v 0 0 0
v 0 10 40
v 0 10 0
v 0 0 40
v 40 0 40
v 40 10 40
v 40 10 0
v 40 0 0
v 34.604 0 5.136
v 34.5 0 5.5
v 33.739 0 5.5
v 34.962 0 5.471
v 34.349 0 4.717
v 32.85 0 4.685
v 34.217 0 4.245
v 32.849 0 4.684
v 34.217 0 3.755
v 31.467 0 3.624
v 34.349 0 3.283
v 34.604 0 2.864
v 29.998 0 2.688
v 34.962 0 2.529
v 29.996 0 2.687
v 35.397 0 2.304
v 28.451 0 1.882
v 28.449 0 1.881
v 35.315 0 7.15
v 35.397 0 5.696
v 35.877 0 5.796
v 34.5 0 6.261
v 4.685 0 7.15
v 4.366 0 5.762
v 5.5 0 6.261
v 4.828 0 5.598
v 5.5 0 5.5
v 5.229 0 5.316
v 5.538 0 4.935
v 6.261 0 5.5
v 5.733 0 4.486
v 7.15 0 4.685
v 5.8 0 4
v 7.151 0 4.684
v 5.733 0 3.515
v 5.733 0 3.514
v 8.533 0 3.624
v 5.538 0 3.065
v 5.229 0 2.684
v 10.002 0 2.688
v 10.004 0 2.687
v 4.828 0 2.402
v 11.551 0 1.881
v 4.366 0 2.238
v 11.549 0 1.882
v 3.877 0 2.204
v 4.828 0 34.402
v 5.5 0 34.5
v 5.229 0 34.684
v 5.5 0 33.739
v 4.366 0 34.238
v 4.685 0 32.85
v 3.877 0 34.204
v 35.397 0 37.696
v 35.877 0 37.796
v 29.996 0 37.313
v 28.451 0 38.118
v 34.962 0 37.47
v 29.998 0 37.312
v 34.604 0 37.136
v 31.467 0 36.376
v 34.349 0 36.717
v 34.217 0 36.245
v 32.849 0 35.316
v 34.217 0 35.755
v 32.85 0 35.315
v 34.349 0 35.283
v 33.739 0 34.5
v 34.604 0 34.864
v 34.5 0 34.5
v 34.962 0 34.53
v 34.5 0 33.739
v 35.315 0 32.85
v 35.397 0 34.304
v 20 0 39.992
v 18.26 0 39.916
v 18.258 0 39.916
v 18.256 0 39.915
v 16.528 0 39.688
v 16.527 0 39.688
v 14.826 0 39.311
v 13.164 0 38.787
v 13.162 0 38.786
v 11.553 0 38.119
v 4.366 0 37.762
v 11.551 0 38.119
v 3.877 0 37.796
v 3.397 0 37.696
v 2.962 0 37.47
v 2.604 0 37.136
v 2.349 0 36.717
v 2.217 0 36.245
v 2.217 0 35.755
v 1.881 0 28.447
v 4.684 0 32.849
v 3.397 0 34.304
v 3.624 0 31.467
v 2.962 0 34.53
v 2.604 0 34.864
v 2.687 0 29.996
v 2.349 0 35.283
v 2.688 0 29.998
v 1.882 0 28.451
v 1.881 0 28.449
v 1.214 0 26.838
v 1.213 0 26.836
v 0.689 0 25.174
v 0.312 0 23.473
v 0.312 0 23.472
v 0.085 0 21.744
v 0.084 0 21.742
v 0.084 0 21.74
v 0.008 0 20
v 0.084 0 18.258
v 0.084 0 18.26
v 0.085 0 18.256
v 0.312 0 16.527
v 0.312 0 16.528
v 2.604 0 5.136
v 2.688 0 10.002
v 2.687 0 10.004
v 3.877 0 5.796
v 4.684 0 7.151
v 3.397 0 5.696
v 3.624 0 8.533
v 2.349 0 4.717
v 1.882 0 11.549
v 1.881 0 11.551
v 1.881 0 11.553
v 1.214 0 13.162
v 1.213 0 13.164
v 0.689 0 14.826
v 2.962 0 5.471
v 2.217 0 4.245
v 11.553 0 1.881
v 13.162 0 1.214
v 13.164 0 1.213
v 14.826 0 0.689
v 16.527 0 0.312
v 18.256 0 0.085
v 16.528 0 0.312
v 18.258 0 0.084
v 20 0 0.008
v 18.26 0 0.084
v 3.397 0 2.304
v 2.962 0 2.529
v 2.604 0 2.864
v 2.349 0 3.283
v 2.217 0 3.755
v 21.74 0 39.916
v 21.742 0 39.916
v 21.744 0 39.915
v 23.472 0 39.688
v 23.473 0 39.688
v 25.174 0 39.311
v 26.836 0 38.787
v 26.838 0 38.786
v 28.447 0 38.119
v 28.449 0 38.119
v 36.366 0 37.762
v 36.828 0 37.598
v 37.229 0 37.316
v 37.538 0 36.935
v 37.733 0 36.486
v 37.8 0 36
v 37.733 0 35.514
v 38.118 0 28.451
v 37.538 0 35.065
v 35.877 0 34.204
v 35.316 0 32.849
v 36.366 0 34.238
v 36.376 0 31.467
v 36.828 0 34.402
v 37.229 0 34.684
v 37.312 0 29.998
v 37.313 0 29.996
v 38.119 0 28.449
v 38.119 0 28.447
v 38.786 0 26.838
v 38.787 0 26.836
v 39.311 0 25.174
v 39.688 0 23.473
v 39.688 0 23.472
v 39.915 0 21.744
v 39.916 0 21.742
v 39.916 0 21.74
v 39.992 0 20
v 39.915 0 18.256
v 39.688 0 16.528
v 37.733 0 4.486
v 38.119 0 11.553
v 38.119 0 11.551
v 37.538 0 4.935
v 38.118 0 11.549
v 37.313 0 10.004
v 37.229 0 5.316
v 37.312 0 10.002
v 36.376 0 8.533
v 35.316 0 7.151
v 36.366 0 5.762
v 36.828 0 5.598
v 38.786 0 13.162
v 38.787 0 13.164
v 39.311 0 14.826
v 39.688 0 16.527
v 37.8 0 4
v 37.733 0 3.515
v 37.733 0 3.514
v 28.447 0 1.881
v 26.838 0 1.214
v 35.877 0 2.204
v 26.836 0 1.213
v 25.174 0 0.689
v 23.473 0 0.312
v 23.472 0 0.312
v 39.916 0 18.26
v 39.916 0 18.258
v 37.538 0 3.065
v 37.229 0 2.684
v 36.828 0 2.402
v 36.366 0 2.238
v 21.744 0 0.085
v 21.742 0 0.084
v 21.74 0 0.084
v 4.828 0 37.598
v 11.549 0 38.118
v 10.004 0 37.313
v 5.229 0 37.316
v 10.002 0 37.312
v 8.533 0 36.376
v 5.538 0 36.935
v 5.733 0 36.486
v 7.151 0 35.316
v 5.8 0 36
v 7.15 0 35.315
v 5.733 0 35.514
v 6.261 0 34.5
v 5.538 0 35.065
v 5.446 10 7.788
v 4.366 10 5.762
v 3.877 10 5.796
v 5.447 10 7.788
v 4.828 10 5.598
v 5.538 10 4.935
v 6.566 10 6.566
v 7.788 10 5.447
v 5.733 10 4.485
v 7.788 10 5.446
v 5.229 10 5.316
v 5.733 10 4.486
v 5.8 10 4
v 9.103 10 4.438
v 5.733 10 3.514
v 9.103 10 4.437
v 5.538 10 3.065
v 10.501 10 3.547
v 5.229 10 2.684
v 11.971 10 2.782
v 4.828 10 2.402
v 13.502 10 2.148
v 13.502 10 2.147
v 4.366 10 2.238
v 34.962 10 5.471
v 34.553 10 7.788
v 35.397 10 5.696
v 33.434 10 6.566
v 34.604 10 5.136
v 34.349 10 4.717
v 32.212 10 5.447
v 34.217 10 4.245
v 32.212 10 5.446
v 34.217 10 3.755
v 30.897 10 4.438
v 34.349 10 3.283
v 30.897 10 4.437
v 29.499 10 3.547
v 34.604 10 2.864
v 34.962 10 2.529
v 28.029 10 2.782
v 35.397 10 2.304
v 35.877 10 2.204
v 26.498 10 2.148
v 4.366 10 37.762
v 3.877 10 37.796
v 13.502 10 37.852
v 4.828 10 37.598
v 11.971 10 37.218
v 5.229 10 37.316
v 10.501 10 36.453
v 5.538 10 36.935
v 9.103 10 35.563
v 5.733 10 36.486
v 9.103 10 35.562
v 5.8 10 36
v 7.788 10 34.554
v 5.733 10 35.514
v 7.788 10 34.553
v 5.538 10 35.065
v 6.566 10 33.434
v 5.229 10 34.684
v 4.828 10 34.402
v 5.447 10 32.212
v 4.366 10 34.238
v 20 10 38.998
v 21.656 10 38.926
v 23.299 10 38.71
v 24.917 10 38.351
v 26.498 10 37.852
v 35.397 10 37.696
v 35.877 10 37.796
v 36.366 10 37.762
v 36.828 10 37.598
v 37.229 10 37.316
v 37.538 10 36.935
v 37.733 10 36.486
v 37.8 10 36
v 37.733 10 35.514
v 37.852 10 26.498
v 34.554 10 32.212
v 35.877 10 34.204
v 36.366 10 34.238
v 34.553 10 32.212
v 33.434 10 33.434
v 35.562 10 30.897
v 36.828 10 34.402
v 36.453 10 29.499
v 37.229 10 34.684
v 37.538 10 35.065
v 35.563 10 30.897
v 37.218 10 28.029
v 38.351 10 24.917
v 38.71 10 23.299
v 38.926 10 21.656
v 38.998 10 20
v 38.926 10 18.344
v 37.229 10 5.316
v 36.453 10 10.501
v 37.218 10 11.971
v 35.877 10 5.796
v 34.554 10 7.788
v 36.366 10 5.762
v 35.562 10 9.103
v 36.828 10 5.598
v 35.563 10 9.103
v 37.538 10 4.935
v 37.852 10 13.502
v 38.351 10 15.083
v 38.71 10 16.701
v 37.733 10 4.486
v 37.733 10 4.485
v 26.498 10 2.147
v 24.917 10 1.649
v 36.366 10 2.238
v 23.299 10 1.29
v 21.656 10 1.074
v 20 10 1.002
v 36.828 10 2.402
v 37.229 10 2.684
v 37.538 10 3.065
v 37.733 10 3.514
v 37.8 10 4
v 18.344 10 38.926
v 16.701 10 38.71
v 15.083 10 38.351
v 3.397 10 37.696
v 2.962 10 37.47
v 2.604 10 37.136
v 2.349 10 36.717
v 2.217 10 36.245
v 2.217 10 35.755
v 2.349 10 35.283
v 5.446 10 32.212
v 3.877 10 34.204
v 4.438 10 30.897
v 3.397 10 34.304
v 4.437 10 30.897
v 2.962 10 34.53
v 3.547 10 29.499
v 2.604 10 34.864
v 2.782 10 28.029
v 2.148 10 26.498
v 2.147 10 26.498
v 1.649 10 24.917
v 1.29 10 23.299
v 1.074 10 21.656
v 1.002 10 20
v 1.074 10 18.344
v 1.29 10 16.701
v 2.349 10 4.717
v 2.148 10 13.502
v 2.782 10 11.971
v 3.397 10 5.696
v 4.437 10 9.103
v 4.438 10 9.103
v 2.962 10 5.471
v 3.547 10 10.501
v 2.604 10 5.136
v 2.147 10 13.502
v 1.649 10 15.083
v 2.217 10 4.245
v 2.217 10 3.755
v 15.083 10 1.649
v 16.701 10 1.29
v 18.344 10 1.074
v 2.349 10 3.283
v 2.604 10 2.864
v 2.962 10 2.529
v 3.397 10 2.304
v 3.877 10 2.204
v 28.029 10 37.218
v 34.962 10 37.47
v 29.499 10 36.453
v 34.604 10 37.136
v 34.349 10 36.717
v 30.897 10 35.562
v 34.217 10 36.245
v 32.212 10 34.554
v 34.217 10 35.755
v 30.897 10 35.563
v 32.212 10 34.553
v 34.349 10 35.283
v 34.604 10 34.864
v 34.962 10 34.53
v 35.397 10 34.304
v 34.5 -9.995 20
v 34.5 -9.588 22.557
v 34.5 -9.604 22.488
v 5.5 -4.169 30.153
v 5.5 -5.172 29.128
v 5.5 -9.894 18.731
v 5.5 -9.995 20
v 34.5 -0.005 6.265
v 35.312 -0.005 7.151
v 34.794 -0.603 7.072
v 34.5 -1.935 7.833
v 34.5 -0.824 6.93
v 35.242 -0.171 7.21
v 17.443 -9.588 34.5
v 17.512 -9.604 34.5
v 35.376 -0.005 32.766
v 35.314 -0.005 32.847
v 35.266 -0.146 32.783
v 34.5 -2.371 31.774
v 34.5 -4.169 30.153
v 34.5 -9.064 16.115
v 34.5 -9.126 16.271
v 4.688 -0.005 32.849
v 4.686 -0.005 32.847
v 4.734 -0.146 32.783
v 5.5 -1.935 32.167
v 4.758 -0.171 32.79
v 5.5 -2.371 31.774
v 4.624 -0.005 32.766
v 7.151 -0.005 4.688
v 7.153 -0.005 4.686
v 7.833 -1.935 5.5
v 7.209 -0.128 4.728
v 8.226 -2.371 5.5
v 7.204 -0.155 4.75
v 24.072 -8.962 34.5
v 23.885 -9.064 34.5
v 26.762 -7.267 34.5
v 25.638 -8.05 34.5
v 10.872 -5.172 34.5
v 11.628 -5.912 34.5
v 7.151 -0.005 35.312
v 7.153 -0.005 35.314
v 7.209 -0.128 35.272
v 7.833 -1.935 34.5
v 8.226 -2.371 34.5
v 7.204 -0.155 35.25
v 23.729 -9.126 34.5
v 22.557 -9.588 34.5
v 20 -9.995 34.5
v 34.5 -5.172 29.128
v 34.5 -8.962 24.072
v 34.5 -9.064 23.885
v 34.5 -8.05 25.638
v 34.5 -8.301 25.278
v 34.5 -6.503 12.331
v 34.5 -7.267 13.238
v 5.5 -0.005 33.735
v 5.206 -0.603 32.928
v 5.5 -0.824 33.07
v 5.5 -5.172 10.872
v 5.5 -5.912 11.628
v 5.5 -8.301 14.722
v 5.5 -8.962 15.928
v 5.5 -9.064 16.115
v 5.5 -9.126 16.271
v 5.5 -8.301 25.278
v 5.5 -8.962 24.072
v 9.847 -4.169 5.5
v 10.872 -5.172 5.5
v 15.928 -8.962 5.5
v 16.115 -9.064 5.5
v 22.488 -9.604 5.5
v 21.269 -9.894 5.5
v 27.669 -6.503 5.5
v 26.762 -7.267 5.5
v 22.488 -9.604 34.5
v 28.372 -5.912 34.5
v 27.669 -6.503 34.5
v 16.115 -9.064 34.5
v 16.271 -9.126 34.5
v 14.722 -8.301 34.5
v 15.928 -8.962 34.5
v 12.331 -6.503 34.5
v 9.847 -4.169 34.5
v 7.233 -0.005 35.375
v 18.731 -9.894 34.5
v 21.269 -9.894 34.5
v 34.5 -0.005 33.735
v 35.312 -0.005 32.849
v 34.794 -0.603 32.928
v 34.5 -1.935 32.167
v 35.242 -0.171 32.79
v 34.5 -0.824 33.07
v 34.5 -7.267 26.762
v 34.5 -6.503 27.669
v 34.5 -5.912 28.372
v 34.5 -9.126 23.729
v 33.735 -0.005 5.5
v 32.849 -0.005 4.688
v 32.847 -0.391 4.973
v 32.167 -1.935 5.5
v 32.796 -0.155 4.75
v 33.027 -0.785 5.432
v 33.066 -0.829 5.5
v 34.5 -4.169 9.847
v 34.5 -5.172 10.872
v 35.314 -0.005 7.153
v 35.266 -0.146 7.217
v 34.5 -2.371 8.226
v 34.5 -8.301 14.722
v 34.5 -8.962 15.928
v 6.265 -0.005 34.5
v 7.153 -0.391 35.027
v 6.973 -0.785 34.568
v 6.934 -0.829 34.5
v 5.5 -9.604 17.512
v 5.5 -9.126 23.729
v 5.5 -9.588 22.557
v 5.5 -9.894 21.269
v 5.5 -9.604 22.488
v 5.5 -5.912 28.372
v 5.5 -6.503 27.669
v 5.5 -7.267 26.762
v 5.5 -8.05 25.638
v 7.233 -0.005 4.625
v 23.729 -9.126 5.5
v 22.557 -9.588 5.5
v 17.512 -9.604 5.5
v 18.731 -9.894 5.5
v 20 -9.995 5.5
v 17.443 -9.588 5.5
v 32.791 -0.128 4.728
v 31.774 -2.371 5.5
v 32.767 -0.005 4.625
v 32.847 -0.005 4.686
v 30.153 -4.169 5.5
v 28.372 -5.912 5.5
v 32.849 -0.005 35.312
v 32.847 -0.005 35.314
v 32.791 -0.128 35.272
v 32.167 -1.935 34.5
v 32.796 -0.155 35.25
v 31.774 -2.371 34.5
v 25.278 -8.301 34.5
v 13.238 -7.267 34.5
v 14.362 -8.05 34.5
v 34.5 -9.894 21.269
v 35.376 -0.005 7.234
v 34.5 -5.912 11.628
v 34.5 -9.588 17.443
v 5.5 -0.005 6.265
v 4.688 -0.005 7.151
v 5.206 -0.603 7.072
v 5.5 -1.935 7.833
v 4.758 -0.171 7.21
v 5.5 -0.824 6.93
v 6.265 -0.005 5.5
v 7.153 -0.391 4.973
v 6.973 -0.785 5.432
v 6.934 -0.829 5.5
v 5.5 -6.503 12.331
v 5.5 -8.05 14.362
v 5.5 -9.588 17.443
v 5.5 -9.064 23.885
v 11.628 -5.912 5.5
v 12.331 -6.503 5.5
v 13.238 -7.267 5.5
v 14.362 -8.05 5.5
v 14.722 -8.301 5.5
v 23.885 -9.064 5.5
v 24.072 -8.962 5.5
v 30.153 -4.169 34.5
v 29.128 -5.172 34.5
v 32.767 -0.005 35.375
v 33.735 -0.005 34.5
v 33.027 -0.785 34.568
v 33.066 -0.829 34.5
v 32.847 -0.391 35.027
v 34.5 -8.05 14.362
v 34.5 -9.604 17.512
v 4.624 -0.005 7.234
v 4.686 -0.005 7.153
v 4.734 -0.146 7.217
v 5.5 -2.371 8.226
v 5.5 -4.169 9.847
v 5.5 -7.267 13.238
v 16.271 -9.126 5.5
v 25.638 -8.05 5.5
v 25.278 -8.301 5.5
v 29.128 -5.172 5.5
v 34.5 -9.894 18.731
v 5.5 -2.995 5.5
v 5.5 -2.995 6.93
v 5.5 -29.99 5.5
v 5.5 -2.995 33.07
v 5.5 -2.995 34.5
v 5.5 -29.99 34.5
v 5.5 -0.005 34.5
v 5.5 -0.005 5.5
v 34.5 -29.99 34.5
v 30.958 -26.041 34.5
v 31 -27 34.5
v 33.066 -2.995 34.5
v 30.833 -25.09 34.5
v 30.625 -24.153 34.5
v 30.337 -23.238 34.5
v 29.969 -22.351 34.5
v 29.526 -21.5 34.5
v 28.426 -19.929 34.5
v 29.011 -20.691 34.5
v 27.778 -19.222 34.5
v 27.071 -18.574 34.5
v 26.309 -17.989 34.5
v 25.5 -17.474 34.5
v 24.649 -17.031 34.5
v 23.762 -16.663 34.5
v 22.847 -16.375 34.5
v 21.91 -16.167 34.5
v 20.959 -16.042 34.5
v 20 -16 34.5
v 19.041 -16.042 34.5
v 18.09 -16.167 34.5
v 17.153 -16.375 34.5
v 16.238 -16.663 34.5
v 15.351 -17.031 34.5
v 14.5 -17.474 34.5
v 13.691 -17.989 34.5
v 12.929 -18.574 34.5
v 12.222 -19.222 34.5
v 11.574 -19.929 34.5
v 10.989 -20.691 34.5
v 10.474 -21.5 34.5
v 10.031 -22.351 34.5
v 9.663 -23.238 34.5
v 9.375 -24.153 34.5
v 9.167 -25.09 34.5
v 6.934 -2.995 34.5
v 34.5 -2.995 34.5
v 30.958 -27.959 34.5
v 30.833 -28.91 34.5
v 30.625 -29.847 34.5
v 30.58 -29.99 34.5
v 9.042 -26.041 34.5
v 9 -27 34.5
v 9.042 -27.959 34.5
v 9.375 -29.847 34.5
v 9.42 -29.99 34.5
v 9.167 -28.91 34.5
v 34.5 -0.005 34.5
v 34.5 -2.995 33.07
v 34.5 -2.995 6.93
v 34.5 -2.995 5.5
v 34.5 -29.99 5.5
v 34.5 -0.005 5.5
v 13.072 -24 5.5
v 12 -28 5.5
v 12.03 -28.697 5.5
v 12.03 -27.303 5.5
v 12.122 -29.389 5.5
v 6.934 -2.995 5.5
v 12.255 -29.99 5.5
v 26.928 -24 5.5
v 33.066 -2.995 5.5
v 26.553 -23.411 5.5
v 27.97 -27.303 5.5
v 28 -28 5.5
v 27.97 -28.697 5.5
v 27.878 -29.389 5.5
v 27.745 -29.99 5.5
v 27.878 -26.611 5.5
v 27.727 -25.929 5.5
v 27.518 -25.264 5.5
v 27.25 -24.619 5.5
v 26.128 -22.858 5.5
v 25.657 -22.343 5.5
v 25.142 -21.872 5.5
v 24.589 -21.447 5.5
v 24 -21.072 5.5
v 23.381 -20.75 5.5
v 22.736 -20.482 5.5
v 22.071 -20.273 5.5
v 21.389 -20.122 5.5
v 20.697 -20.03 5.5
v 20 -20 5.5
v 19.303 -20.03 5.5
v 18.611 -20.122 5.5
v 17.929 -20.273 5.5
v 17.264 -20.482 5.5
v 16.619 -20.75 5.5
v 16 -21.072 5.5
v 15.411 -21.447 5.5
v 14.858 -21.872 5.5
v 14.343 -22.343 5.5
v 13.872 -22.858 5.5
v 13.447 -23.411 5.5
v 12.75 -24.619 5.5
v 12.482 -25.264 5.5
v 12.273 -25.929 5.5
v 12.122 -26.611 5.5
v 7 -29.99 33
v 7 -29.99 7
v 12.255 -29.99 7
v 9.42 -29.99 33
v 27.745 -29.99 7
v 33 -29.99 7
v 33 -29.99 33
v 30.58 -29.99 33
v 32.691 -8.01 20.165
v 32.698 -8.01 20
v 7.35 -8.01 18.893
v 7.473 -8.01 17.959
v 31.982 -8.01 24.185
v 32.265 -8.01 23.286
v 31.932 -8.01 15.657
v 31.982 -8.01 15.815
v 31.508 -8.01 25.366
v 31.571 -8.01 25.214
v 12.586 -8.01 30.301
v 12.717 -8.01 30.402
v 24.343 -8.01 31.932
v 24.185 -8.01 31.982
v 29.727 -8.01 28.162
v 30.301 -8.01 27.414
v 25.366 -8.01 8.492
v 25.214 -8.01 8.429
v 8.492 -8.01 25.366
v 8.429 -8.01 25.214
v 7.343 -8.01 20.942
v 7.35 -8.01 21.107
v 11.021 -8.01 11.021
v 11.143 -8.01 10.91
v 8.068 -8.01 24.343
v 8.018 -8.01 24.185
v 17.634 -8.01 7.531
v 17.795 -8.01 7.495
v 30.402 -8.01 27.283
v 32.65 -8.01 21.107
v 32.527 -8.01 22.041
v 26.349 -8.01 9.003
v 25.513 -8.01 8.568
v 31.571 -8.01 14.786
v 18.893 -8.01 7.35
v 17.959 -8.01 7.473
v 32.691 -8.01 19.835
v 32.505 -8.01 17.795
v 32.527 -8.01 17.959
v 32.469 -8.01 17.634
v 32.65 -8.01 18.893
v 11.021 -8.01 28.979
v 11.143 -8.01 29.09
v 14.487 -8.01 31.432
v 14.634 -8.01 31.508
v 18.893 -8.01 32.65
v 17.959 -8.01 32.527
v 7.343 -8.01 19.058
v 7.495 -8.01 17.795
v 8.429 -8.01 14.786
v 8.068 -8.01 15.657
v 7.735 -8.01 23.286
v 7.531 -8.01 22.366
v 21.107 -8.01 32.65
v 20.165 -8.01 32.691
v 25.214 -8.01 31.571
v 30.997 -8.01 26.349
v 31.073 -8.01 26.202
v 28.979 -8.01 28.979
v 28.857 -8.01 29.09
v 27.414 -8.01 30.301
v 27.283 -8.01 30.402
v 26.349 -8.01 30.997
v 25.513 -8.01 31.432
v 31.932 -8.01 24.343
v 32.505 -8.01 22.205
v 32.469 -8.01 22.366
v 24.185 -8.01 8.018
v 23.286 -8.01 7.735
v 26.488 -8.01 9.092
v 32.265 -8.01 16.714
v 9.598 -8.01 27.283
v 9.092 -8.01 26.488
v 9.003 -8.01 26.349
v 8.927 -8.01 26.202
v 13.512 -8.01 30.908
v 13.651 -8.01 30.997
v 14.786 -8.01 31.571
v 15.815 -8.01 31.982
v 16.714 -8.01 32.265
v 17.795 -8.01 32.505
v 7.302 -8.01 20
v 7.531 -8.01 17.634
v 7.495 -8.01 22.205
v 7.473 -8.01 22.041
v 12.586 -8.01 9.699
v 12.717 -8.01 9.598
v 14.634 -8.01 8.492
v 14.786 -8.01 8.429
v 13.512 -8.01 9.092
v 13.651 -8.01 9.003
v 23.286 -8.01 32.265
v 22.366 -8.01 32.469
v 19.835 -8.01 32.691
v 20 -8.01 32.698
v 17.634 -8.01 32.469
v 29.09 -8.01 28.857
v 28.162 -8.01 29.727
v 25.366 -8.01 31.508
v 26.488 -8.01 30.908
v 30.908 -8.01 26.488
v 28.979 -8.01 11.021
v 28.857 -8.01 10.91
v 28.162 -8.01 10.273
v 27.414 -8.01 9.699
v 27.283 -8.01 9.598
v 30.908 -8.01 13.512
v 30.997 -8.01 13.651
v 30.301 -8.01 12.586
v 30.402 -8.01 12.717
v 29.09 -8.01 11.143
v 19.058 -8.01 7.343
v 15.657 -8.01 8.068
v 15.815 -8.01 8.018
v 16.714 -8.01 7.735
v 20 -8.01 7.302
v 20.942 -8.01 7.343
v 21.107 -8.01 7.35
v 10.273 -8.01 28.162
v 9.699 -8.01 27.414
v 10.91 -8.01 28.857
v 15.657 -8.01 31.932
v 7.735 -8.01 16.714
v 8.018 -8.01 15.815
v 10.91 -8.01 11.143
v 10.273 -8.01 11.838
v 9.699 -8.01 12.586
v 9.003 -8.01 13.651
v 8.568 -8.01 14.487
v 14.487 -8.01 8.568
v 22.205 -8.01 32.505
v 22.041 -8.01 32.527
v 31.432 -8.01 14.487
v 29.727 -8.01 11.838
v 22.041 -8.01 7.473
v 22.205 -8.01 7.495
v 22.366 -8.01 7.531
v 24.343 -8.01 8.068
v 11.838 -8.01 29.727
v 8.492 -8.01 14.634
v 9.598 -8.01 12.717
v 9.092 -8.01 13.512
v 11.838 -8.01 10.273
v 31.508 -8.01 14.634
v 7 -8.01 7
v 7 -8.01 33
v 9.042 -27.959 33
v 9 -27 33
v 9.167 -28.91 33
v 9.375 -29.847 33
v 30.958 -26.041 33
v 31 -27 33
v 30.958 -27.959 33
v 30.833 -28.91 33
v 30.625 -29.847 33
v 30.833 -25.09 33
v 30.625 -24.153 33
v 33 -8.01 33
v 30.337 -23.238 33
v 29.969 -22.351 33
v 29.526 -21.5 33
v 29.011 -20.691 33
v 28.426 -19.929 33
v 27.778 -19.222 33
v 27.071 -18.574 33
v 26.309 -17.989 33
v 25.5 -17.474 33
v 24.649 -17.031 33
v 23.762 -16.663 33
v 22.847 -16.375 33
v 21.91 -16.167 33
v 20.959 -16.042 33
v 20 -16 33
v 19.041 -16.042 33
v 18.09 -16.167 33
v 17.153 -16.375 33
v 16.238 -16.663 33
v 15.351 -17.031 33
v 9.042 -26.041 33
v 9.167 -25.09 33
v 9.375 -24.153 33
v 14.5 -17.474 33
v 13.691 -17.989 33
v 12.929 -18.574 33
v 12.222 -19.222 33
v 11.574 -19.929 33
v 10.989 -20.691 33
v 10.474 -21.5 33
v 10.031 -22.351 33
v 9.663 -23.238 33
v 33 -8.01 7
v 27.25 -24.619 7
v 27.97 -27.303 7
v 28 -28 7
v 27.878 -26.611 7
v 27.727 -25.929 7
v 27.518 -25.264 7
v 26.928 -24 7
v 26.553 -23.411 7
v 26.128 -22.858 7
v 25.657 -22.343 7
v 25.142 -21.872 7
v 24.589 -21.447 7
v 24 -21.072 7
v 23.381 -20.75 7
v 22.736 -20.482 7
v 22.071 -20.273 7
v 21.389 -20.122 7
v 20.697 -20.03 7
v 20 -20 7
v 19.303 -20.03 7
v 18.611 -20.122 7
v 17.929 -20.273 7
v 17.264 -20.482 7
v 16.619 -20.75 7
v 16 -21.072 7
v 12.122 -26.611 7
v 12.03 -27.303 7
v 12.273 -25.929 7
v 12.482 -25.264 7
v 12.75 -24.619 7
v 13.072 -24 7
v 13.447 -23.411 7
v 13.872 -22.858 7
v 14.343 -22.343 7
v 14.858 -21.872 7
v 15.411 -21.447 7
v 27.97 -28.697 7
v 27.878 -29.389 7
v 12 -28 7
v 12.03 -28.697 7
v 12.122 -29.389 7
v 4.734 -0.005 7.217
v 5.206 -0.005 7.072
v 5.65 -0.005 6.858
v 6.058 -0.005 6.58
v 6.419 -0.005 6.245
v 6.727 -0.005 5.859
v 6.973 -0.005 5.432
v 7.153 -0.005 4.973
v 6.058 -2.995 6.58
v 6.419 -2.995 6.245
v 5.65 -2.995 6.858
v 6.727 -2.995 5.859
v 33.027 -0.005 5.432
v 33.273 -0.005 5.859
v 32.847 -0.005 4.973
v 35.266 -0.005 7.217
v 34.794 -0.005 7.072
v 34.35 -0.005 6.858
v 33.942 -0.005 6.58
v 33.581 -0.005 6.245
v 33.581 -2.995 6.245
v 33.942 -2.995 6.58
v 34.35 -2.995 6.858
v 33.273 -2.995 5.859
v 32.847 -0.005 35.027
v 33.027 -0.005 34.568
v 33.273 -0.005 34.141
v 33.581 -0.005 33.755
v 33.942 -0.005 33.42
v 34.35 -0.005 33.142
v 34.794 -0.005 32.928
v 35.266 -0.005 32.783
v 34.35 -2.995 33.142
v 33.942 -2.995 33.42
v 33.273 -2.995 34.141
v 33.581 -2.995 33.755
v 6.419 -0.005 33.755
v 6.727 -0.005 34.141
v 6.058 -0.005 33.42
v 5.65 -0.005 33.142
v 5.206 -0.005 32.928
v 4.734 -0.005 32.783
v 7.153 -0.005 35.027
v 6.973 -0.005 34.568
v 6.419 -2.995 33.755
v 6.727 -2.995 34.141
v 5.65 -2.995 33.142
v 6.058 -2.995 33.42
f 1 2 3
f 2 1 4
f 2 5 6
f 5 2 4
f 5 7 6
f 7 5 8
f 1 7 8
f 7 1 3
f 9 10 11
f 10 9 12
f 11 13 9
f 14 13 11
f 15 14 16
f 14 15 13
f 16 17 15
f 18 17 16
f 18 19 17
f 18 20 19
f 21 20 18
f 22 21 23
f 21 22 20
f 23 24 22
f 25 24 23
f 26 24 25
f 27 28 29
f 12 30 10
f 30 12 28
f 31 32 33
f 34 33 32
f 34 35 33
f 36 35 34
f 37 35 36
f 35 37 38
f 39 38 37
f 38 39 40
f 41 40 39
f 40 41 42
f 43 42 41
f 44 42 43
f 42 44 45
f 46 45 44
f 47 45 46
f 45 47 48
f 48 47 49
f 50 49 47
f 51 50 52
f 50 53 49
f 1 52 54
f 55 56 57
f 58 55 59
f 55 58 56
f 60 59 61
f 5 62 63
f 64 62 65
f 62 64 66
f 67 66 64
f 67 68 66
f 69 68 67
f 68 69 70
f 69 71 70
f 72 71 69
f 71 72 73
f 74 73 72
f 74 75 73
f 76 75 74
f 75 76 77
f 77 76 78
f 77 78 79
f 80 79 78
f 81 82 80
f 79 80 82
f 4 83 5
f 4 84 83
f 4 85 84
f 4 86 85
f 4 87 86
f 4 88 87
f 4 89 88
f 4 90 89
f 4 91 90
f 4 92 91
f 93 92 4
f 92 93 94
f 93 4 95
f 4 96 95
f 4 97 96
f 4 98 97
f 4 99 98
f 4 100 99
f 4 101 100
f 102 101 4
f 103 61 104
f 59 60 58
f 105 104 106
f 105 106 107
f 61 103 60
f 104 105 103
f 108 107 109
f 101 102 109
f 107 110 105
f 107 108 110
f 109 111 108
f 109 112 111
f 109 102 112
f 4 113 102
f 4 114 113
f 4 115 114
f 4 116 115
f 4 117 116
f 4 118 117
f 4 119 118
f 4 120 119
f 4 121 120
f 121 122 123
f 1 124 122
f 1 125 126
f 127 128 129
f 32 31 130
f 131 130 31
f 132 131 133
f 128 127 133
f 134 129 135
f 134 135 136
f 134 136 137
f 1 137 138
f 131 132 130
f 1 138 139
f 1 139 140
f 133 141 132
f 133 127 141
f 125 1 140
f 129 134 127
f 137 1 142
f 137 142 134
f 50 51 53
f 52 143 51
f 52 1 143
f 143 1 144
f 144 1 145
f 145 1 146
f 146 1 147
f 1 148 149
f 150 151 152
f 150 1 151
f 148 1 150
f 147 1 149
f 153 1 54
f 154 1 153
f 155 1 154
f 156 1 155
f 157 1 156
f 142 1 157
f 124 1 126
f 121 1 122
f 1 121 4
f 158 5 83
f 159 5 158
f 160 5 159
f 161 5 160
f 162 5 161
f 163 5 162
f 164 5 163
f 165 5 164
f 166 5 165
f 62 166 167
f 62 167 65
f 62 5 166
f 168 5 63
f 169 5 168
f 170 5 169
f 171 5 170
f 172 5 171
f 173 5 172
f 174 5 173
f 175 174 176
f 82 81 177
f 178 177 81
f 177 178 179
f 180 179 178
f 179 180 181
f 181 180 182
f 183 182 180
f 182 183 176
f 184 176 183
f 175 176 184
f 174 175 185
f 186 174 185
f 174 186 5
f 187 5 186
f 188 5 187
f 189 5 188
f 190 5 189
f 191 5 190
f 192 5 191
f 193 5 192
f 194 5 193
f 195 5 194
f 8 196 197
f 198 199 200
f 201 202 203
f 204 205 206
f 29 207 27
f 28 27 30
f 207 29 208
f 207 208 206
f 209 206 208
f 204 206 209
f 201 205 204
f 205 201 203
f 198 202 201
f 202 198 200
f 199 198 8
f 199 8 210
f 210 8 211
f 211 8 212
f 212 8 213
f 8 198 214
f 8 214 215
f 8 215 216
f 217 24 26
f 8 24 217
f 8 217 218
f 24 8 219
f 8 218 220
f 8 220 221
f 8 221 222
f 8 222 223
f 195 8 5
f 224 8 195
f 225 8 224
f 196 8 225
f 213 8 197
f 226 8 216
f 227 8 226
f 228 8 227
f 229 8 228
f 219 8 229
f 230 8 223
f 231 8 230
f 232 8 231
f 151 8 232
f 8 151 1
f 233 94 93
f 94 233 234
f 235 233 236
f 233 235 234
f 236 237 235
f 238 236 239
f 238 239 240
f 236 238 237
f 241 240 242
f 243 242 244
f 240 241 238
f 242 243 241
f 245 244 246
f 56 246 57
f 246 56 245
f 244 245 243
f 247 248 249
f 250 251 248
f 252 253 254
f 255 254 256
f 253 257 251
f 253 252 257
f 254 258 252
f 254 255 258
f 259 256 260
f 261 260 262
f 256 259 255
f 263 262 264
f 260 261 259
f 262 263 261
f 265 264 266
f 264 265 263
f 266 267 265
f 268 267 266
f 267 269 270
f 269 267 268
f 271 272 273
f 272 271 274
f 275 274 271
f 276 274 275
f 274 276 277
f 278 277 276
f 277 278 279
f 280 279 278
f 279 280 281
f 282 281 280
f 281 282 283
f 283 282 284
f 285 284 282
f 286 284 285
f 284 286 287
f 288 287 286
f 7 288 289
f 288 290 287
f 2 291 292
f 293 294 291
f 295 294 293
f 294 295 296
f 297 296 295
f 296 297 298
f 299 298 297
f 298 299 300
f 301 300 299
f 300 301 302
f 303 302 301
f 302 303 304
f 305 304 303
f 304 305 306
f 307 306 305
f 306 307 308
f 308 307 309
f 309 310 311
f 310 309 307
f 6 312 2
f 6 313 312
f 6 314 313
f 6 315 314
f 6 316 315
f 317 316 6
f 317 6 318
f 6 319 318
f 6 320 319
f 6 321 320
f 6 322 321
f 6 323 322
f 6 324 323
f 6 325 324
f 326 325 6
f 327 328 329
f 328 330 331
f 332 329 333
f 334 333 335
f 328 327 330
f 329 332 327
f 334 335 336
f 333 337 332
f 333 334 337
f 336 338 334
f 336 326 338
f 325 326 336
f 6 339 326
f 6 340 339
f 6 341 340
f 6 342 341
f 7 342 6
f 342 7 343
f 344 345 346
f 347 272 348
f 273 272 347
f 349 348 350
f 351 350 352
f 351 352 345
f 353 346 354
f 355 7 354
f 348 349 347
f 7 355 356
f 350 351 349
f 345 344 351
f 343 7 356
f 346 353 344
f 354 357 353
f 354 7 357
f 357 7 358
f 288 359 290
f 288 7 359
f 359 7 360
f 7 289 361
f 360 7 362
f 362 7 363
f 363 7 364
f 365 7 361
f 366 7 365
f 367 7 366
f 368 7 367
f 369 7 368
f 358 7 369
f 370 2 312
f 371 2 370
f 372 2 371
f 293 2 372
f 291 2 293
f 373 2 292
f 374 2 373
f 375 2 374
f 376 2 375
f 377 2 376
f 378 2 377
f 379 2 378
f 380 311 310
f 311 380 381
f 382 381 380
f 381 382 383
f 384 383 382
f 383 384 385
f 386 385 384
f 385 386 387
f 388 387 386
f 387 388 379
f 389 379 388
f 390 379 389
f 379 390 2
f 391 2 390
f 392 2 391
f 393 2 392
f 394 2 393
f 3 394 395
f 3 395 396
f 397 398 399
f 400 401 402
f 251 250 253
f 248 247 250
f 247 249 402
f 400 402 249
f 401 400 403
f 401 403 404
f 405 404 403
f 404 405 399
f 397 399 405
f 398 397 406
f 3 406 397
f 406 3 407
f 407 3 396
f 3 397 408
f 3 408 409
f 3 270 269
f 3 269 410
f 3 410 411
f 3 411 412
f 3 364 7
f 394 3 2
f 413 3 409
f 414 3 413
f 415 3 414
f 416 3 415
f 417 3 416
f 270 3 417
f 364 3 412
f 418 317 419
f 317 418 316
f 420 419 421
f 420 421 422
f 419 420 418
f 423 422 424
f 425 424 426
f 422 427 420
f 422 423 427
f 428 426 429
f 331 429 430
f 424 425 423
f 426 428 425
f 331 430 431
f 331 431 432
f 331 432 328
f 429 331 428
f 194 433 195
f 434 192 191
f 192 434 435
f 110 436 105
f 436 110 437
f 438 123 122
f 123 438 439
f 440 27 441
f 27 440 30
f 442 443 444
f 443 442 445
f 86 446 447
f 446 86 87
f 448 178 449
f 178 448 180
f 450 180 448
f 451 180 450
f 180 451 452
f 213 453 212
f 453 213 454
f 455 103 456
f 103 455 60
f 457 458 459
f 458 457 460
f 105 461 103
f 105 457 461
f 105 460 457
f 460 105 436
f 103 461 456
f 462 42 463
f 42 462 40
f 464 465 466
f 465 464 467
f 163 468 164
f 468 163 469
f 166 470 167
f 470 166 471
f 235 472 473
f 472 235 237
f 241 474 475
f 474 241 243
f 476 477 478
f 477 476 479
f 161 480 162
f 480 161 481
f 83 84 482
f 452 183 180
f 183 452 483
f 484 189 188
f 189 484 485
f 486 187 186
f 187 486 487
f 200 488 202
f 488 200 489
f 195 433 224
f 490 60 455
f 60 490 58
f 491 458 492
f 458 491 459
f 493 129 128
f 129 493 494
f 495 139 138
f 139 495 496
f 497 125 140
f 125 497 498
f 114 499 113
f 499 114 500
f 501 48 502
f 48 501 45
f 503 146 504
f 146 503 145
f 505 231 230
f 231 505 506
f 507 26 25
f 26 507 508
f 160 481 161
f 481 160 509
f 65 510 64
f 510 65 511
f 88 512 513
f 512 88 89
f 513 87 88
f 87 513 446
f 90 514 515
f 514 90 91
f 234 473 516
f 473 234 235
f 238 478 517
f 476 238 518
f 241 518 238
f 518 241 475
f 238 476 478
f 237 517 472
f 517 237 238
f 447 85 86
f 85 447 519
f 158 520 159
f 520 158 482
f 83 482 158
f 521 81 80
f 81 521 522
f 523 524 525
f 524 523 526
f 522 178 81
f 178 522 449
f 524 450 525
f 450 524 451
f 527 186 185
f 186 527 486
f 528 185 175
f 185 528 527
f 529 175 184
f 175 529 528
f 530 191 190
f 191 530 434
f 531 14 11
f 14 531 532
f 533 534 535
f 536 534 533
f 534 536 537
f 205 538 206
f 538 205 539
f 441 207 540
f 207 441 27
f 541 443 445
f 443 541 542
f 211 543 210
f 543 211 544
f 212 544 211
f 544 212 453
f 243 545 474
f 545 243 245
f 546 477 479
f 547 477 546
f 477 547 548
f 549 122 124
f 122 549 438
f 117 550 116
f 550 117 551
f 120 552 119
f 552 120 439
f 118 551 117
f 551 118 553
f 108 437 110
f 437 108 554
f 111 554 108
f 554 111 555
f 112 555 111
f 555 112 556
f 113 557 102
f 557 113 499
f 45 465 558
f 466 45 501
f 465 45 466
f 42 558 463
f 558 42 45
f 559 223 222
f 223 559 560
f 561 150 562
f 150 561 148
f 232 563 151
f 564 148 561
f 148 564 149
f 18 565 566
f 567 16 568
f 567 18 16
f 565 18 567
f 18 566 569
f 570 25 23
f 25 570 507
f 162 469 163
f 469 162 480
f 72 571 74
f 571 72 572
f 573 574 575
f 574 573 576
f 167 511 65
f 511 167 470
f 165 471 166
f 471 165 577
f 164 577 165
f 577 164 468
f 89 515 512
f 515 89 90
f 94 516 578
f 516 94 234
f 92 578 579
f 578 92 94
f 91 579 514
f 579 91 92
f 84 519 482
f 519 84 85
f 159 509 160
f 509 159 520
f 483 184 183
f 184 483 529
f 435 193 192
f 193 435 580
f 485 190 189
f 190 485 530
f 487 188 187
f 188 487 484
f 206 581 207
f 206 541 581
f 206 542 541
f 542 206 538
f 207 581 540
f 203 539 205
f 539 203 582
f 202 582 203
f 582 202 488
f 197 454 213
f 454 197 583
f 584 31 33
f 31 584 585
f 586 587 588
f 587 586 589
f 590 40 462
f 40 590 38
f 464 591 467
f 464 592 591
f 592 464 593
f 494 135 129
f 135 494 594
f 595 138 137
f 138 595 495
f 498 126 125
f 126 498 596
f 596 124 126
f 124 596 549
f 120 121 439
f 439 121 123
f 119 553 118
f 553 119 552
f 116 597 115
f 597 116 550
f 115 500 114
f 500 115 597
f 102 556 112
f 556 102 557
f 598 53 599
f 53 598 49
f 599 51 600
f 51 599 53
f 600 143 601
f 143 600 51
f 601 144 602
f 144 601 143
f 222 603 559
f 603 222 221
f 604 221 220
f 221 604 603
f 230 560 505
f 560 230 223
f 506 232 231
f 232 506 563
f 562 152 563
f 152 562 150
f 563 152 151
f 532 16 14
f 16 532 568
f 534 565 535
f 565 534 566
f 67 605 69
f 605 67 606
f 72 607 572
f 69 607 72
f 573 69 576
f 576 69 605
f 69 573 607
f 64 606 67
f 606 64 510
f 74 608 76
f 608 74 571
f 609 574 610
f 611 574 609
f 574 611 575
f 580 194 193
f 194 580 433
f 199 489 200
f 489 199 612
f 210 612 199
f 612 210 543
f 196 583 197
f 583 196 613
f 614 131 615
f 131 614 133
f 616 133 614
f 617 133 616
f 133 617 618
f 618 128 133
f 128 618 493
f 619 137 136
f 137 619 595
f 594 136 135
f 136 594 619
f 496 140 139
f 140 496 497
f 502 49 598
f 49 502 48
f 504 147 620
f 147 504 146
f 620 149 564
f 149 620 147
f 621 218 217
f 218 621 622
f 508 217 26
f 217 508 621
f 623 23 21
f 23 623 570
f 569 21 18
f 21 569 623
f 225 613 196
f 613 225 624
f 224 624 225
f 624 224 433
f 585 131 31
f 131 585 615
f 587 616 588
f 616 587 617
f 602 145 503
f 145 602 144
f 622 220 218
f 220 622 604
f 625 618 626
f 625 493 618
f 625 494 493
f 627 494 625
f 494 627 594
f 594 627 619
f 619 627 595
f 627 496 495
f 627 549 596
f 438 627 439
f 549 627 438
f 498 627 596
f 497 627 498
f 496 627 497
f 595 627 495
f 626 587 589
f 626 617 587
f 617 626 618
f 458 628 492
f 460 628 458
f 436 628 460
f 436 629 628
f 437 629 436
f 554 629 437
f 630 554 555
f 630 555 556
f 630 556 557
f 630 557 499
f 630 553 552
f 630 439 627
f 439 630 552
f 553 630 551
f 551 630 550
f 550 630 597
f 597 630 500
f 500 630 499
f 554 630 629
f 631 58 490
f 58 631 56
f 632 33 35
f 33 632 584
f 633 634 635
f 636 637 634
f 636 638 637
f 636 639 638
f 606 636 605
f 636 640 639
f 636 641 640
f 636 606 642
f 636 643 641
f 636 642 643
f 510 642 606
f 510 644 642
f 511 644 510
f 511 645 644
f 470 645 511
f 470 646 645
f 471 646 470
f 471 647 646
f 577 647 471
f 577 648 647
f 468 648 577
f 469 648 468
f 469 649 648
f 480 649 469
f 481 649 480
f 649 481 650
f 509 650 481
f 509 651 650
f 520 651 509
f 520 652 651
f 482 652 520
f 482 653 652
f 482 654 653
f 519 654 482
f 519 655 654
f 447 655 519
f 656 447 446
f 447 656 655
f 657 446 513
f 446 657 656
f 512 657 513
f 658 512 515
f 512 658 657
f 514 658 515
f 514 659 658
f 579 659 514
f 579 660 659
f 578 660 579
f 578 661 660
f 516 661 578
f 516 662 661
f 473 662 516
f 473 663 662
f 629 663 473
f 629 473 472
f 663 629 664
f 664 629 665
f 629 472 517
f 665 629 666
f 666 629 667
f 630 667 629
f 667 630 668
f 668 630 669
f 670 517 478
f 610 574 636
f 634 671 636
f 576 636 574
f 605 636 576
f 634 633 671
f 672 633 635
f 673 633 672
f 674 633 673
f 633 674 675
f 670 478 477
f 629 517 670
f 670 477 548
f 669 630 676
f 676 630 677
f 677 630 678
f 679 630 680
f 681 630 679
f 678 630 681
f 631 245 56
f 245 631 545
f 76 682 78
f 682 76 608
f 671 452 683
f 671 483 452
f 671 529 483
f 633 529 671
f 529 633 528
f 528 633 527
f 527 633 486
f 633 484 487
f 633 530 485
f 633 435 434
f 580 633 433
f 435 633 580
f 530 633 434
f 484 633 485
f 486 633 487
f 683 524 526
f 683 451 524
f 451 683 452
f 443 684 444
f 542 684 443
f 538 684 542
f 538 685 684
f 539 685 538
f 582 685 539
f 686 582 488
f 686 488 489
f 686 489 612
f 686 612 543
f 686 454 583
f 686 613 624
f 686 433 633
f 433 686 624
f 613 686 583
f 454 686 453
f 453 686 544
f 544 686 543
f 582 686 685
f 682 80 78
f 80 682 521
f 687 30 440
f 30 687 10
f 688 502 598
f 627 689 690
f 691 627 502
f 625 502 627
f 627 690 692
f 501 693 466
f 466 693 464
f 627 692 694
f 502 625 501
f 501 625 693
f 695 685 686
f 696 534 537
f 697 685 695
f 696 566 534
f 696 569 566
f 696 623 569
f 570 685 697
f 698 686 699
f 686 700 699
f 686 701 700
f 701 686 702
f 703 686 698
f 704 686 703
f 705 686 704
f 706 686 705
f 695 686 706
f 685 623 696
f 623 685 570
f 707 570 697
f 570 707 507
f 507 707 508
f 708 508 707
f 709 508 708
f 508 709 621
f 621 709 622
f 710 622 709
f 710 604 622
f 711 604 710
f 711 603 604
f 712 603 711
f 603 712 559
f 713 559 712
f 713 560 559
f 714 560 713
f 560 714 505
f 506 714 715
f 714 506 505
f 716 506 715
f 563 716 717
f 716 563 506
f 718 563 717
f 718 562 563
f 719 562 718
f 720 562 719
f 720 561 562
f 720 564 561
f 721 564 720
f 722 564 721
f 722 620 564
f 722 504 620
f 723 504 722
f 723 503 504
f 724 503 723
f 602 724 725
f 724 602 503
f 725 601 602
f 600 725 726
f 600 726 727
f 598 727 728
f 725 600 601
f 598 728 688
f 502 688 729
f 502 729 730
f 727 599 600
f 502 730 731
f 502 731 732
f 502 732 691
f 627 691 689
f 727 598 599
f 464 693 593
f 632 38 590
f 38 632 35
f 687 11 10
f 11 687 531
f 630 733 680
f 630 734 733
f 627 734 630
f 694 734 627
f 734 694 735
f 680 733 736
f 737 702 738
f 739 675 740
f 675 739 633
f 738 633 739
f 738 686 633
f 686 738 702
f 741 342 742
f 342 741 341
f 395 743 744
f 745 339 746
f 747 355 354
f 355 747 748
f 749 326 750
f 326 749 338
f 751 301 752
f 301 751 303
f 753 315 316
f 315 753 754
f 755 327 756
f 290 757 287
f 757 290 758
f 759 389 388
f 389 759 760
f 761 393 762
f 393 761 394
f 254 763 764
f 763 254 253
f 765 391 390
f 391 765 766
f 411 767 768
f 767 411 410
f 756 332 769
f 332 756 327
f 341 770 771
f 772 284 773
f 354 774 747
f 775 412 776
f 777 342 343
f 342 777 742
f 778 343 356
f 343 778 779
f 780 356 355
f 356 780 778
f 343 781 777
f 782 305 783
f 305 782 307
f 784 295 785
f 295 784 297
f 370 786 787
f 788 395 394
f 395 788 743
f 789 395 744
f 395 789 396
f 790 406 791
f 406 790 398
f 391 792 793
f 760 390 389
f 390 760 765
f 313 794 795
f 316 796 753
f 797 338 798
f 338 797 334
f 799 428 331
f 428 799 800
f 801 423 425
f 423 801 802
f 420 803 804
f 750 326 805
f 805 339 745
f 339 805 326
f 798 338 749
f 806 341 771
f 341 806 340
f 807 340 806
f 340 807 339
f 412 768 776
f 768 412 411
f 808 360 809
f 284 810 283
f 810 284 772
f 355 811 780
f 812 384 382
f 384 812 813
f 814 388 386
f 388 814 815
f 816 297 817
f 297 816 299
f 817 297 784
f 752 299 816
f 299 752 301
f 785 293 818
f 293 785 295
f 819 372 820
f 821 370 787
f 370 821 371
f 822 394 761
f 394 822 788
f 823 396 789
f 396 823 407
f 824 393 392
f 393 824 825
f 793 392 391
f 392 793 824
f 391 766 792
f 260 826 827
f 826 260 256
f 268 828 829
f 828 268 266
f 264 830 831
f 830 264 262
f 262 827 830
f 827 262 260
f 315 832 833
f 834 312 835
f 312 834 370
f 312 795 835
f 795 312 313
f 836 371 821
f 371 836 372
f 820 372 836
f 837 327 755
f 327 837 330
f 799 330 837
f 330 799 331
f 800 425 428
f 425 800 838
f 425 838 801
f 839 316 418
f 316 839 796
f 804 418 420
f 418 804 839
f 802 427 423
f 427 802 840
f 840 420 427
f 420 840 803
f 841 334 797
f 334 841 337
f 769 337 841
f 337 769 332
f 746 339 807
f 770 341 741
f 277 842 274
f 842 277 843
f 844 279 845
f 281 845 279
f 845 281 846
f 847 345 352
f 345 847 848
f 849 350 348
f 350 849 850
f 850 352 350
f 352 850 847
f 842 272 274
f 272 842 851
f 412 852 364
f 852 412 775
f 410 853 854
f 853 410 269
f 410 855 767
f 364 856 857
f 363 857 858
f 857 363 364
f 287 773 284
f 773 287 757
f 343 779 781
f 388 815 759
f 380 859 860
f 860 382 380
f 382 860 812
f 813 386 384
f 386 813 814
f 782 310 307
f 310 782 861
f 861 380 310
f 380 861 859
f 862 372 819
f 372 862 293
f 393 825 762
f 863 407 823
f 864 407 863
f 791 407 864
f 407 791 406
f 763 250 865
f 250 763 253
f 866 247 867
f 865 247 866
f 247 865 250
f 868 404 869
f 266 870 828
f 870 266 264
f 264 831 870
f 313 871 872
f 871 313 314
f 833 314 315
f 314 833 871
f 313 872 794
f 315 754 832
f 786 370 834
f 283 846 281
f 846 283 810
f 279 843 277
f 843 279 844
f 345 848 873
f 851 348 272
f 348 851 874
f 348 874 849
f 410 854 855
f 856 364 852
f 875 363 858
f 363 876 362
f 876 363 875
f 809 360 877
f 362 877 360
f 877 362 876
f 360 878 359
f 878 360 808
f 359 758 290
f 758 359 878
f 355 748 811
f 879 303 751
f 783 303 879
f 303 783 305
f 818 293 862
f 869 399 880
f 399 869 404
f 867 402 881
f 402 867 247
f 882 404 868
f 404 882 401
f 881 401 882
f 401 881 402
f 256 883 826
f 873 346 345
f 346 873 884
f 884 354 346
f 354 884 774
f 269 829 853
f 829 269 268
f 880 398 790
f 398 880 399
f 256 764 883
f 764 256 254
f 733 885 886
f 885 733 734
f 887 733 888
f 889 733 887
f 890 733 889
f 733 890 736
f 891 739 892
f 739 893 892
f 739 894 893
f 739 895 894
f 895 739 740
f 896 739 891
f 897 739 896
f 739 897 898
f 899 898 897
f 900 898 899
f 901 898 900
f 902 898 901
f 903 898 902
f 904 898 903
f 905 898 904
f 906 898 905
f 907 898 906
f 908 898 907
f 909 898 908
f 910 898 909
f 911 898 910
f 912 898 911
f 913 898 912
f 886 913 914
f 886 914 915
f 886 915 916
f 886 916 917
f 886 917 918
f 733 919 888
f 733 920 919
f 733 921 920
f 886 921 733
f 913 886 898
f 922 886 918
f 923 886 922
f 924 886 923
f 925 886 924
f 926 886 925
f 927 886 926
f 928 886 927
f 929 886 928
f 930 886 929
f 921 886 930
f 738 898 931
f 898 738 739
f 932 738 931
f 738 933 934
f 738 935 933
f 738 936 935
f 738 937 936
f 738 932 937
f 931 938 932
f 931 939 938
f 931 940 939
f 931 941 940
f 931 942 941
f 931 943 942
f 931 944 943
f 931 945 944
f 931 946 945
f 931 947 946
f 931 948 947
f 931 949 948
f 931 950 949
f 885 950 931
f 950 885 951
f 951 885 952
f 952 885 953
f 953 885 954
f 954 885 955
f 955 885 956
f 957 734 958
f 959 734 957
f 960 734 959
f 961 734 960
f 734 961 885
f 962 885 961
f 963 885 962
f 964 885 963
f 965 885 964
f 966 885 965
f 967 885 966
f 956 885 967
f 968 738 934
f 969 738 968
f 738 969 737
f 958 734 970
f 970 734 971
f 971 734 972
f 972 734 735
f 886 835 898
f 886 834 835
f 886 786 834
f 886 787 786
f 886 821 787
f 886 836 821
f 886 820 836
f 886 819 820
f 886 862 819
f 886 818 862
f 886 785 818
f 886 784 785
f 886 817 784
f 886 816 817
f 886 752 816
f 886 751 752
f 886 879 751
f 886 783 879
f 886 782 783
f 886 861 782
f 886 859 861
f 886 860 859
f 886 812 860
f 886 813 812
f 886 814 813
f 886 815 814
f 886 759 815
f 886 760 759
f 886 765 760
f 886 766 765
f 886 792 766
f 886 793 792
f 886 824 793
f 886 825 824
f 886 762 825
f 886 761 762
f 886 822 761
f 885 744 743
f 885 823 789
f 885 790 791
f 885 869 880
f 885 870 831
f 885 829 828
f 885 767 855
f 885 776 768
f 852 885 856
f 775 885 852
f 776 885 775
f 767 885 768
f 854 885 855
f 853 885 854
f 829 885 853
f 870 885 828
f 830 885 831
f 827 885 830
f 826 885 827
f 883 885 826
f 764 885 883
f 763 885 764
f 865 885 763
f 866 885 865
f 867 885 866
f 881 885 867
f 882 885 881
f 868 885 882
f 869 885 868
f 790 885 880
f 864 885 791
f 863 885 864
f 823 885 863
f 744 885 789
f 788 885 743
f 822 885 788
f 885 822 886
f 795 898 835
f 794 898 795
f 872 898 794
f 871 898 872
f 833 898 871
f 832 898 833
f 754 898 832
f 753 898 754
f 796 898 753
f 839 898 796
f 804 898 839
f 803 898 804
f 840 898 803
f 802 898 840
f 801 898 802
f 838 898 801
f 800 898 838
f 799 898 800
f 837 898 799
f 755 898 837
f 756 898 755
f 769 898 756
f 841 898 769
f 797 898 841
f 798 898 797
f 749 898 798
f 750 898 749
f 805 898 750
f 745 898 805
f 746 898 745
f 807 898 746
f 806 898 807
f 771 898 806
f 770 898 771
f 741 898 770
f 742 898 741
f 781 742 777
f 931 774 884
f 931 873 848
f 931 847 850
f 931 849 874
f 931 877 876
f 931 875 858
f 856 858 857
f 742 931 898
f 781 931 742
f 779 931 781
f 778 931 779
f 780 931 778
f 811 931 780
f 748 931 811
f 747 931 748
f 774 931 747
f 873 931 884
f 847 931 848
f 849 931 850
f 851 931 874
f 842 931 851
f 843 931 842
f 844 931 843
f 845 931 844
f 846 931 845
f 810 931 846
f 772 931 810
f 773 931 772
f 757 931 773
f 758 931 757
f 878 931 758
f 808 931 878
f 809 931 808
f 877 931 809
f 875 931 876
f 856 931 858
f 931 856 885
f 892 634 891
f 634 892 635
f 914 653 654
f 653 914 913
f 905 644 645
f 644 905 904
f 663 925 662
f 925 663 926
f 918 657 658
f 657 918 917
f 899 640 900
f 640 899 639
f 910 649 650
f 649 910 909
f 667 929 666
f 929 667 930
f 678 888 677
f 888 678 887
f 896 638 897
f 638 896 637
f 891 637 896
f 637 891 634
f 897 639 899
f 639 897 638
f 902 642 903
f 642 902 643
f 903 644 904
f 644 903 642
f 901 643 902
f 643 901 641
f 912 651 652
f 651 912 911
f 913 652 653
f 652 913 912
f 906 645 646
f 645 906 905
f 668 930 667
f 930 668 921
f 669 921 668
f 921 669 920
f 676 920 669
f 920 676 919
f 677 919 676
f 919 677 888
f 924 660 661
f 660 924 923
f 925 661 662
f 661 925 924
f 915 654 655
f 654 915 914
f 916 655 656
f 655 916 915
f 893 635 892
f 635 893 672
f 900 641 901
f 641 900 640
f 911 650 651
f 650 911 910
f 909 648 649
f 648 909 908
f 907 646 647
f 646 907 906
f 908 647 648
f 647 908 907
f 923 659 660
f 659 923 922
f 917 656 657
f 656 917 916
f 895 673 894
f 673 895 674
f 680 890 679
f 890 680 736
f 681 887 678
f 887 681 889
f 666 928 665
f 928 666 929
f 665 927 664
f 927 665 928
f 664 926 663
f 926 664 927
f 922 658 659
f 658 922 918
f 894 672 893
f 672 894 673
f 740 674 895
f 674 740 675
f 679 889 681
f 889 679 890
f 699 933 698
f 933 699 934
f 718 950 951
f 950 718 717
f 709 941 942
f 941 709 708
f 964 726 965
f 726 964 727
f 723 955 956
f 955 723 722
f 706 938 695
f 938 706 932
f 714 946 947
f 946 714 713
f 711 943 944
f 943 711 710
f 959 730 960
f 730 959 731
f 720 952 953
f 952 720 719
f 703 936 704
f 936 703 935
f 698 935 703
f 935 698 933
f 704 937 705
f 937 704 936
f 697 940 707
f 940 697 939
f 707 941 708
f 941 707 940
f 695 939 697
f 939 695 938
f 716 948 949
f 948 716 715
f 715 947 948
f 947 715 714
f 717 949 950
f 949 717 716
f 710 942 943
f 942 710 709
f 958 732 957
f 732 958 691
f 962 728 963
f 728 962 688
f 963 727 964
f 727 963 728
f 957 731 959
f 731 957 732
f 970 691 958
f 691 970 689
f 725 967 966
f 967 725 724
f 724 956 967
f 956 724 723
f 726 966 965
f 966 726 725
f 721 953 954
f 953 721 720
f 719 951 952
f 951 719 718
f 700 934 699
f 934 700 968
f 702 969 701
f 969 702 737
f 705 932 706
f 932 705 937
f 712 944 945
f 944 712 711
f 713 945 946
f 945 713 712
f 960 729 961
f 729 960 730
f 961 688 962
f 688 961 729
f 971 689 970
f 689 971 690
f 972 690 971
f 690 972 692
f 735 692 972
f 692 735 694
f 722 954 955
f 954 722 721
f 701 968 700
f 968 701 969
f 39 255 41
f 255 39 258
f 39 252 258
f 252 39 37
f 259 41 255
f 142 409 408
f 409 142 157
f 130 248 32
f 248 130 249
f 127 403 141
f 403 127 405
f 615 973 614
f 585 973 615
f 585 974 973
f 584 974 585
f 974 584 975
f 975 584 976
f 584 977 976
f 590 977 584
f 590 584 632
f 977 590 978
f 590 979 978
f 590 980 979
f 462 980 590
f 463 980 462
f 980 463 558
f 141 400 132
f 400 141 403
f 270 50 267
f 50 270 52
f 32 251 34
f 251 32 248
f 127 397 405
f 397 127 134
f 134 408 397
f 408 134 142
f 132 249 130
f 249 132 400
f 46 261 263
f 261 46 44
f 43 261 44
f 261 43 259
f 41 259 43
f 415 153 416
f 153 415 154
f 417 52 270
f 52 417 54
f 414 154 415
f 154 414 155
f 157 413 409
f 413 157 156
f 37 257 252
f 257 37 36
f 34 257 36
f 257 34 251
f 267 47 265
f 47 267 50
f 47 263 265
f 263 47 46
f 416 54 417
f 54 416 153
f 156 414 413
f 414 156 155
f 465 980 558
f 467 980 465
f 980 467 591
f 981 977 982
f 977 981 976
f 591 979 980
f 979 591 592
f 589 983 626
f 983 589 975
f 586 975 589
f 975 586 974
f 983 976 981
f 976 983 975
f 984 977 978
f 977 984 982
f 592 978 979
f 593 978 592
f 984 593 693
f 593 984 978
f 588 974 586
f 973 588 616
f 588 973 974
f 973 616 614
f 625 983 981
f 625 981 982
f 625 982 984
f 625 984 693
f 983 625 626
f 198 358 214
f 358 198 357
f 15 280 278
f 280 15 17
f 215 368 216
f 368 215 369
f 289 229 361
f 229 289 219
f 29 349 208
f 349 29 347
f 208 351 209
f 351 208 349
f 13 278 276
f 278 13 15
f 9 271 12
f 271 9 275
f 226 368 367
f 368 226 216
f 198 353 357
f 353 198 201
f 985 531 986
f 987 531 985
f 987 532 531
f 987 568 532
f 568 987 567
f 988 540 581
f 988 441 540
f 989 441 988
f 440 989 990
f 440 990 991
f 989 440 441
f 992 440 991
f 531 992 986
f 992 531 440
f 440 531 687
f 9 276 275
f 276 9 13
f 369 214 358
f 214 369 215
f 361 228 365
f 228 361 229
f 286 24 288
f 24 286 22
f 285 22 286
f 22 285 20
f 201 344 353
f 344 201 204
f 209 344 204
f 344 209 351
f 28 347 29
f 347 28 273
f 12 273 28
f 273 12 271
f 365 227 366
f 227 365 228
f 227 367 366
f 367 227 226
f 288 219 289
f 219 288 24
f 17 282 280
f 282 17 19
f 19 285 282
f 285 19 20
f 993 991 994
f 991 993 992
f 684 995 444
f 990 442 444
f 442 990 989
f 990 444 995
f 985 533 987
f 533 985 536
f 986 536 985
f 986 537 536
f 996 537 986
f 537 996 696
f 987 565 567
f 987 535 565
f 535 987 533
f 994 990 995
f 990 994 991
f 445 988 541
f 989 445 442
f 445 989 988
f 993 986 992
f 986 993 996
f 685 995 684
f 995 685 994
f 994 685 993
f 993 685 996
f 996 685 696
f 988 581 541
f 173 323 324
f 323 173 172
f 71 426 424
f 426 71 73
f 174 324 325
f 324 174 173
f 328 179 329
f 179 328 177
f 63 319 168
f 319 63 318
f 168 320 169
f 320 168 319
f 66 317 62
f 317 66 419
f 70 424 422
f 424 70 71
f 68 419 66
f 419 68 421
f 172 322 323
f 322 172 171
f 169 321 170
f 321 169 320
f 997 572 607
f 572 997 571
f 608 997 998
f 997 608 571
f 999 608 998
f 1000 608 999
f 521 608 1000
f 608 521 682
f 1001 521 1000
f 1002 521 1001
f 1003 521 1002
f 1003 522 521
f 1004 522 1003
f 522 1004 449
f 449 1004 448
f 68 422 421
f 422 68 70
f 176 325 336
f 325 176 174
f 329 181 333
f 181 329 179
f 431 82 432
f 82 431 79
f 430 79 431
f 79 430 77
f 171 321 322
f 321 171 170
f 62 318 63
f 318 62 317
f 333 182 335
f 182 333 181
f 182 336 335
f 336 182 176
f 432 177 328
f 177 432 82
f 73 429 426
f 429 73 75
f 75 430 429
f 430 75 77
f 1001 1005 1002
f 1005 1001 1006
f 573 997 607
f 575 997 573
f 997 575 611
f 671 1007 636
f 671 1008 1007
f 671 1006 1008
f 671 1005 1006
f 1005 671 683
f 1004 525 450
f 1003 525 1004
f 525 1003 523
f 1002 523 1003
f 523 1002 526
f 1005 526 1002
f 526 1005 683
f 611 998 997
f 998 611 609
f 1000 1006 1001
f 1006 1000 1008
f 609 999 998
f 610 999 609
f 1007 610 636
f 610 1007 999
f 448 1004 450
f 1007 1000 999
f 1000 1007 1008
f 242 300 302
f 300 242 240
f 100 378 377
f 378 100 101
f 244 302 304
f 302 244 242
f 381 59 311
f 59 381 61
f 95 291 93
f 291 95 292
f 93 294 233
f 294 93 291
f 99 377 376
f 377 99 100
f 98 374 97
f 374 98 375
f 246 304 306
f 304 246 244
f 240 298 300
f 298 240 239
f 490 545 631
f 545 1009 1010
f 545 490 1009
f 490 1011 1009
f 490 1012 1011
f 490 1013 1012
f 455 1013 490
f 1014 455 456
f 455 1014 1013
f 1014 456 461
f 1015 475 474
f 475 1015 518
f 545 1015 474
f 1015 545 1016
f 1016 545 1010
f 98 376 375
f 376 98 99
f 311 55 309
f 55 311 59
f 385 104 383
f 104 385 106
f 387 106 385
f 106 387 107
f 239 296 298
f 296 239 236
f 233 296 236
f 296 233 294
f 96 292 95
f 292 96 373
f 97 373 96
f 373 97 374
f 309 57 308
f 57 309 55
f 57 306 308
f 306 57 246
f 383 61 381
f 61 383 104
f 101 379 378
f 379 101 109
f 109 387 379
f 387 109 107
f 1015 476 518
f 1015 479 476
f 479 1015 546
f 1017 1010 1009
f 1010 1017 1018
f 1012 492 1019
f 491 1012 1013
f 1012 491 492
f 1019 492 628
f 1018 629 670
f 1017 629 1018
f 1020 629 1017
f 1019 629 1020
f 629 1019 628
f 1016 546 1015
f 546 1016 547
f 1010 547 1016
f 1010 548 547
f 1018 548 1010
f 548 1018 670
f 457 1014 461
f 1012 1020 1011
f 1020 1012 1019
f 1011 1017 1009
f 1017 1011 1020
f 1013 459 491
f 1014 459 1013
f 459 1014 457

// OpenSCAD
$fa=5;
$fs=0.5; 

difference(){

//exterior
union(){
cube([40,10,40]);

translate([20,-4.99,20])
    rotate([90,0,0])
        cylinder(h=10.01, r1=20, r2=14.5, center=true);

translate([5.5,-29.99,5.5])
    cube([29,30,29]);}
    
//interior
union(){
translate([20,0,20])
    rotate([90,0,0])
        cylinder(h=20.01, r1=19, r2=12, center=true);
    
translate([7,-30.01,7])
    cube([26,22,26]);
    
translate([20,-27,33.5])
    cylinder(h=2.01, r=11, center=true);
    
translate([20,-28,6.5])
    cylinder(h=2.01, r=8, center=true);
    
//mounting holes    
{
translate([4,5,4])
    rotate([90,0,0])
        cylinder(h=10.01, r=1.8, center=true);
translate([4,-1.5,4])
    rotate([90,0,0])
        cylinder(h=2.99, r=3.3, center=true);
    
translate([36,5,4])
    rotate([90,0,0])
        cylinder(h=10.01, r=1.8, center=true);
translate([36,-1.5,4])
    rotate([90,0,0])
        cylinder(h=2.99, r=3.3, center=true);
        
translate([36,5,36])
    rotate([90,0,0])
        cylinder(h=10.01, r=1.8, center=true);
translate([36,-1.5,36])
    rotate([90,0,0])
        cylinder(h=2.99, r=3.3, center=true);

translate([4,5,36])
    rotate([90,0,0])
        cylinder(h=10.01, r=1.8, center=true);
translate([4,-1.5,36])
    rotate([90,0,0])
        cylinder(h=2.99, r=3.3, center=true);}
        
    






}
    
}
